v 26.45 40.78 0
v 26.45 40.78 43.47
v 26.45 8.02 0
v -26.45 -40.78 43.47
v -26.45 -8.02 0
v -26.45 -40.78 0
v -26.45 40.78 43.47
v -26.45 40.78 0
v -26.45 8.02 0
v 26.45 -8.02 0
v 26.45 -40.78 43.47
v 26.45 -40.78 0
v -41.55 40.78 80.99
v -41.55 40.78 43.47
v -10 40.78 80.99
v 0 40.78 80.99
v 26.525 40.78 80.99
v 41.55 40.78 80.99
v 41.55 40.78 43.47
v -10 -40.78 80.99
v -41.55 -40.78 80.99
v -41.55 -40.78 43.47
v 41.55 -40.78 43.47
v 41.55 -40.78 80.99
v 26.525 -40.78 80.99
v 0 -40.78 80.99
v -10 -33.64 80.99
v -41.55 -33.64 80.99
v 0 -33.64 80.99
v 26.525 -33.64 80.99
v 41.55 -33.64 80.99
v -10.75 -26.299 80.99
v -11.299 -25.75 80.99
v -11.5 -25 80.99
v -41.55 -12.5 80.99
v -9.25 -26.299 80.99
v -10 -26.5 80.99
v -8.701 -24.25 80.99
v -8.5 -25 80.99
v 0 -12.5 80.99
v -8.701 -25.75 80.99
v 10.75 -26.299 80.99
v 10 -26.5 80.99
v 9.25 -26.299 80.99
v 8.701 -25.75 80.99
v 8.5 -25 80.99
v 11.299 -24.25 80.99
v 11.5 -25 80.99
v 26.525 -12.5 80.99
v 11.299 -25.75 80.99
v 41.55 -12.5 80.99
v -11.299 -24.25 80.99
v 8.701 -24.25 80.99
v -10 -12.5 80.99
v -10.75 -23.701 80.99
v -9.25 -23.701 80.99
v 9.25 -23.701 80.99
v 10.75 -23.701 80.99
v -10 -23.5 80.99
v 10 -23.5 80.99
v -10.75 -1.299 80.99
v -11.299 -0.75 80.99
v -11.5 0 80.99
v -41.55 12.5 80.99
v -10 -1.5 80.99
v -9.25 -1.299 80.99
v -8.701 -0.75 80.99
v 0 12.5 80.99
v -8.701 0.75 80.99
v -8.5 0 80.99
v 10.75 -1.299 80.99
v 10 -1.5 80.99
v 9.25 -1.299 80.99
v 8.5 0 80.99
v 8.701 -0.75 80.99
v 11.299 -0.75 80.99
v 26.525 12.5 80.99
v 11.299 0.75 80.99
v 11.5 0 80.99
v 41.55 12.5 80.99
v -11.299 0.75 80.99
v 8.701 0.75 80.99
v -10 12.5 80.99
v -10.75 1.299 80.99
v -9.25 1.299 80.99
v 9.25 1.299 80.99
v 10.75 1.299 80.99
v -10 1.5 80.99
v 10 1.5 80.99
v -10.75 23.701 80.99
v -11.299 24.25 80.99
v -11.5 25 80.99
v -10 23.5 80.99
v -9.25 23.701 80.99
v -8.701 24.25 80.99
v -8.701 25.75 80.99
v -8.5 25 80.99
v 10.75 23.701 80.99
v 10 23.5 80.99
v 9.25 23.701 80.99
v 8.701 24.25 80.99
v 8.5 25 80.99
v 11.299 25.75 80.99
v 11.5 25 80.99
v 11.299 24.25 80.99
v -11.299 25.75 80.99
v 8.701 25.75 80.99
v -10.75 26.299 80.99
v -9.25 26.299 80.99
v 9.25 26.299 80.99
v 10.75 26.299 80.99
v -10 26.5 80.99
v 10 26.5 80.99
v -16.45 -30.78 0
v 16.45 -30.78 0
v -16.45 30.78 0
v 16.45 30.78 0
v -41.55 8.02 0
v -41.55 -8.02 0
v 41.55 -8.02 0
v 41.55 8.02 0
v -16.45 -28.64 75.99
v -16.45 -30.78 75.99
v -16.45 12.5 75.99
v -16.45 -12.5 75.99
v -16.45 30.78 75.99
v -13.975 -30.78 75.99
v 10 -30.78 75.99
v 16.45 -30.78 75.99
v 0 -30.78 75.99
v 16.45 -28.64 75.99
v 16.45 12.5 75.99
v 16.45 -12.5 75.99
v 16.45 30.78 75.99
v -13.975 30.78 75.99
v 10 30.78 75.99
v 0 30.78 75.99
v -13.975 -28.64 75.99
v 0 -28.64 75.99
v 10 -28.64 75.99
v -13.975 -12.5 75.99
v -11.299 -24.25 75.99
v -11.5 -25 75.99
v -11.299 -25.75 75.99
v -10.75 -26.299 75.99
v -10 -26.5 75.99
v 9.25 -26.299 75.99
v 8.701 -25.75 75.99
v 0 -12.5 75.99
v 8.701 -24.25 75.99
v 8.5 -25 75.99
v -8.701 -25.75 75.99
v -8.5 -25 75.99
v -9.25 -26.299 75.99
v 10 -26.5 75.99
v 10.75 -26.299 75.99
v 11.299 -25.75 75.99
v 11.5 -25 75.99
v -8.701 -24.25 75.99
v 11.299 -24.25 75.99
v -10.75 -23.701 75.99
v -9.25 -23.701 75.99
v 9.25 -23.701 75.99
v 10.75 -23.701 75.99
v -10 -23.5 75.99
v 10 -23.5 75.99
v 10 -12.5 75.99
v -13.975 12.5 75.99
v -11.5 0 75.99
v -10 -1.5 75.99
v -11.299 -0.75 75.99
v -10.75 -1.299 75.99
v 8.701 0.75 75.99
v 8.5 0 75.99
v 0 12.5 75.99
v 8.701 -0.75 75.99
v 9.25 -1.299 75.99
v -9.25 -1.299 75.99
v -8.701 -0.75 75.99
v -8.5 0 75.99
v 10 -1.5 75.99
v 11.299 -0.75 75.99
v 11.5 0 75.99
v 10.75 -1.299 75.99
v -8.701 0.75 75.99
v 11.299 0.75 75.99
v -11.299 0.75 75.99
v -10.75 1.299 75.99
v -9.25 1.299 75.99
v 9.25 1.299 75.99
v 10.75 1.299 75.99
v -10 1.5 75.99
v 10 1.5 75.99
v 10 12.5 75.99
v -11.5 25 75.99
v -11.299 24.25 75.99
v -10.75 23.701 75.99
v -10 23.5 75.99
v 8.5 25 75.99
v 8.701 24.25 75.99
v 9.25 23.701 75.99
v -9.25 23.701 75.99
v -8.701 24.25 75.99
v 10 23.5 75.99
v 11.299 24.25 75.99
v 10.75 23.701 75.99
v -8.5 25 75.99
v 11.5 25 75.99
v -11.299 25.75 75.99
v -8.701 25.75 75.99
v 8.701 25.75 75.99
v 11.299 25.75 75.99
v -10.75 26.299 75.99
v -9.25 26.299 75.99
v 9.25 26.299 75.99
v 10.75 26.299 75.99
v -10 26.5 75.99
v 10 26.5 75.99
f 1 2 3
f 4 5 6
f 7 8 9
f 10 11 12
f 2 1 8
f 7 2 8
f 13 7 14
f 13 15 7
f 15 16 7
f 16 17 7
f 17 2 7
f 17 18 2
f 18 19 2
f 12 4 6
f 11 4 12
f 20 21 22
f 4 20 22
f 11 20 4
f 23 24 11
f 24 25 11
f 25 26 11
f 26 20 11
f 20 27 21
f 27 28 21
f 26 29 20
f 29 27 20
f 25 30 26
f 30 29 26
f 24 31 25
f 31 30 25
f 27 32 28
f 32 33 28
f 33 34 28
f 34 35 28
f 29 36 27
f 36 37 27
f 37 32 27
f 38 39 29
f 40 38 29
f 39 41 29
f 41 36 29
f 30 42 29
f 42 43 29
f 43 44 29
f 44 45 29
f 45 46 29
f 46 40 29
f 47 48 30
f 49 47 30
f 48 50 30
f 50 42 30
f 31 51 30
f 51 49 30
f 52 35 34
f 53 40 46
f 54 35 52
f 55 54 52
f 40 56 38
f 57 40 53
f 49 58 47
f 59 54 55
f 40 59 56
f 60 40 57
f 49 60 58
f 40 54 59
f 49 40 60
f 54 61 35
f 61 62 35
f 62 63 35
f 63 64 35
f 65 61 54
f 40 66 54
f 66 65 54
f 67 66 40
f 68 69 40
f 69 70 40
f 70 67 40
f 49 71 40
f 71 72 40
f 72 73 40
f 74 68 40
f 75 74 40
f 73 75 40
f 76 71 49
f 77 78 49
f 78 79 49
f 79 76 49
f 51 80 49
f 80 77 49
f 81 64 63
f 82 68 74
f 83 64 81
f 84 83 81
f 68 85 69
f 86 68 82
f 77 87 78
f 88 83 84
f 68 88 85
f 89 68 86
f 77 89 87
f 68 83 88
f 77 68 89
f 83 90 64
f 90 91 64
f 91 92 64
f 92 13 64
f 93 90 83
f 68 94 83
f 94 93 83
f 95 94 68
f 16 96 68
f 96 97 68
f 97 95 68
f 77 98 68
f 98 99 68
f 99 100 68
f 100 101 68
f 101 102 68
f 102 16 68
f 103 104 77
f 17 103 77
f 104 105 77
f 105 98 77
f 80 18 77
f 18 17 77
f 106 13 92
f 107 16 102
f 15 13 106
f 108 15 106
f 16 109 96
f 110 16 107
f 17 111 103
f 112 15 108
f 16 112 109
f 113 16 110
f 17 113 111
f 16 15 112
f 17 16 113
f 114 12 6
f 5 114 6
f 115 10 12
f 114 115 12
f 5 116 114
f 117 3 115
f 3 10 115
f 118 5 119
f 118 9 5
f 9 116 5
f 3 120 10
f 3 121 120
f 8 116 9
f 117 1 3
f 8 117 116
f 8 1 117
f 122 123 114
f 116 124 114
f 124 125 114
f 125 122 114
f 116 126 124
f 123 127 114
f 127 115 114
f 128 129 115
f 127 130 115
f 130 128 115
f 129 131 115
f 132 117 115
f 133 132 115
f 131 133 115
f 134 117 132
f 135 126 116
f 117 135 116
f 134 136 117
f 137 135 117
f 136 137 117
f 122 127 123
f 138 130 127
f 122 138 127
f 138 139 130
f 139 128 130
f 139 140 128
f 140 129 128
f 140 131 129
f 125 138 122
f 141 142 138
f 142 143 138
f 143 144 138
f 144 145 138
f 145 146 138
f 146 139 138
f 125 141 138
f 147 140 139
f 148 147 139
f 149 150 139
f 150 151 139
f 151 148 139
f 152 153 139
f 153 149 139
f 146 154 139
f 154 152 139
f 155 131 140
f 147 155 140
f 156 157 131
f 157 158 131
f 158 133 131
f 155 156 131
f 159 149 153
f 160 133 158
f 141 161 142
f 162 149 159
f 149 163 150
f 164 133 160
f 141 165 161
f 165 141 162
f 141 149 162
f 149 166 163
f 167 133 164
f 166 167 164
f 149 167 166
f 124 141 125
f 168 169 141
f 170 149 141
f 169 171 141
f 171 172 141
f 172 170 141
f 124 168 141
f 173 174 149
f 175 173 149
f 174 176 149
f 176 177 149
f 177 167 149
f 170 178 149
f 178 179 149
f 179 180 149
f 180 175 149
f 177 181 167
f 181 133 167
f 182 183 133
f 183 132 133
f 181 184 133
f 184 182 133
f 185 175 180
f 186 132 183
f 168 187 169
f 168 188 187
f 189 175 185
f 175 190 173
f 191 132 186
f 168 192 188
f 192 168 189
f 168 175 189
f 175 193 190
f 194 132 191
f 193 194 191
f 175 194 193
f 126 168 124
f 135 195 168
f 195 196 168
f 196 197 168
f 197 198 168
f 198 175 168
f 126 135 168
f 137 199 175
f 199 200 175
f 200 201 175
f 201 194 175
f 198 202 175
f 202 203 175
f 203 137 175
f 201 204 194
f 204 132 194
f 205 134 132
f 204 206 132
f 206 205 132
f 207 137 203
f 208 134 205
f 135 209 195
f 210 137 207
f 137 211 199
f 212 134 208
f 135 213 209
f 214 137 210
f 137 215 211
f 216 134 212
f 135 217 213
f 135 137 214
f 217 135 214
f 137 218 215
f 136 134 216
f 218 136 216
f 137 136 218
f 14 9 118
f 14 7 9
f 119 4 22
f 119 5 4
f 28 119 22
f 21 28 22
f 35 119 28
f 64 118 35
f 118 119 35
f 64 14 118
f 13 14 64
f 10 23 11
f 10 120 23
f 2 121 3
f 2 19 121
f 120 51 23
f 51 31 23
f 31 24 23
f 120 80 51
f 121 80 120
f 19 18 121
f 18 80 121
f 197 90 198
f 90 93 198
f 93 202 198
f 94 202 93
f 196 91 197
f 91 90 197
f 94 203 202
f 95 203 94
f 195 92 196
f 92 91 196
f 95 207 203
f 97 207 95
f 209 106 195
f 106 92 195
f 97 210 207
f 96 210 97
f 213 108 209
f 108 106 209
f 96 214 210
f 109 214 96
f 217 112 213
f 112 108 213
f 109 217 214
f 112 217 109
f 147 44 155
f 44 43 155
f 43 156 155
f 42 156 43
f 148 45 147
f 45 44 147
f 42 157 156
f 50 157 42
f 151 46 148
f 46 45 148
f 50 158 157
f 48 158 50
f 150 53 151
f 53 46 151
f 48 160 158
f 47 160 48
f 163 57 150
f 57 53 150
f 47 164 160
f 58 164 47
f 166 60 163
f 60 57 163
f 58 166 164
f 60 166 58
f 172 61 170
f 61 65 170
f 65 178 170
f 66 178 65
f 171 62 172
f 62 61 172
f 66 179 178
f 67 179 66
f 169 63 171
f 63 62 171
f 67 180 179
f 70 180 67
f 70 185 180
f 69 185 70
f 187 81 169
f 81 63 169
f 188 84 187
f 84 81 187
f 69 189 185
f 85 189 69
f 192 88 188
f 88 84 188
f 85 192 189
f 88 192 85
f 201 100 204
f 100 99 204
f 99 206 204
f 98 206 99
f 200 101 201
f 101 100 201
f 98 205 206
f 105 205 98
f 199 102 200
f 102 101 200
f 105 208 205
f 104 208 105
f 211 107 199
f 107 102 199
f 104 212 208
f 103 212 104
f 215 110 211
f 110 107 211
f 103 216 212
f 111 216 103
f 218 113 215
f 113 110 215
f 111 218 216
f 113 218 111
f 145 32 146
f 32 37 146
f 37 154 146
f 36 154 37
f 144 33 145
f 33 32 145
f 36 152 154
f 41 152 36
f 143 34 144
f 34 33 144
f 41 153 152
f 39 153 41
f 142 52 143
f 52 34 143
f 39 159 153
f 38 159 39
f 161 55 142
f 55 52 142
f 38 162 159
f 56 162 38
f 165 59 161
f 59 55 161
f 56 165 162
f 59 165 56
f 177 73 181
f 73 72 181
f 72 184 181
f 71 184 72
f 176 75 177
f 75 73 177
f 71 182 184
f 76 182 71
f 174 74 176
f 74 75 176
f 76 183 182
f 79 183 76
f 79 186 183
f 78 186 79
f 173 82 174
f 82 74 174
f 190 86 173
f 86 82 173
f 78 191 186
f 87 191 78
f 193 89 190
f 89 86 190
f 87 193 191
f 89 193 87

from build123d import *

# Parameters (mm, degrees)
SKETCH_1_W          = 52.9
SKETCH_1_H          = 81.56
EXTRUDE_1_DEPTH     = 80.99
SKETCH_2_W          = 32.9
SKETCH_2_H          = 61.56
CUT_EXTRUDE_1_DEPTH = 75.99
EXTRUDE_2_DEPTH     = 15.1
SKETCH_4_R          = 1.5
CUT_EXTRUDE_2_DEPTH = 100.743626363


with BuildPart() as part:
    # 草图1 → 凸台-拉伸1 (new body)
    with BuildSketch(Plane.XY):
        Rectangle(SKETCH_1_W, SKETCH_1_H)
    extrude(amount=EXTRUDE_1_DEPTH)

    # 草图2 → 切除-拉伸1 (cut)
    with BuildSketch(Plane(origin=(0, 0, 0), x_dir=(-1, 0, 0), z_dir=(0, 0, -1))):
        Rectangle(SKETCH_2_W, SKETCH_2_H)
    extrude(amount=-CUT_EXTRUDE_1_DEPTH, mode=Mode.SUBTRACT)

    # 草图3 → 凸台-拉伸2 (add)
    with BuildSketch(Plane.ZY.offset(26.45)):
        Polygon((80.99, 40.78), (43.47, 40.78), (0, 8.02), (0, -8.02), (43.47, -40.78), (80.99, -40.78), align=None)
    extrude_2 = extrude(amount=EXTRUDE_2_DEPTH)

    # 镜向1: 凸台-拉伸2 across plane
    add(extrude_2.mirror(Plane(origin=(0, 0, 0), x_dir=(0, 0, 1), z_dir=(1, 0, 0))))

    # 草图4 → 切除-拉伸2 (cut, through all)
    with BuildSketch(Plane.XY.offset(80.99)):
        with Locations((-10, 25)):
            Circle(SKETCH_4_R)
        with Locations((10, 25)):
            Circle(SKETCH_4_R)
        with Locations((-10, -25)):
            Circle(SKETCH_4_R)
        with Locations((10, -25)):
            Circle(SKETCH_4_R)
        with Locations((-10, 0)):
            Circle(SKETCH_4_R)
        with Locations((10, 0)):
            Circle(SKETCH_4_R)
    extrude(amount=-CUT_EXTRUDE_2_DEPTH, mode=Mode.SUBTRACT)


solid = part.part
